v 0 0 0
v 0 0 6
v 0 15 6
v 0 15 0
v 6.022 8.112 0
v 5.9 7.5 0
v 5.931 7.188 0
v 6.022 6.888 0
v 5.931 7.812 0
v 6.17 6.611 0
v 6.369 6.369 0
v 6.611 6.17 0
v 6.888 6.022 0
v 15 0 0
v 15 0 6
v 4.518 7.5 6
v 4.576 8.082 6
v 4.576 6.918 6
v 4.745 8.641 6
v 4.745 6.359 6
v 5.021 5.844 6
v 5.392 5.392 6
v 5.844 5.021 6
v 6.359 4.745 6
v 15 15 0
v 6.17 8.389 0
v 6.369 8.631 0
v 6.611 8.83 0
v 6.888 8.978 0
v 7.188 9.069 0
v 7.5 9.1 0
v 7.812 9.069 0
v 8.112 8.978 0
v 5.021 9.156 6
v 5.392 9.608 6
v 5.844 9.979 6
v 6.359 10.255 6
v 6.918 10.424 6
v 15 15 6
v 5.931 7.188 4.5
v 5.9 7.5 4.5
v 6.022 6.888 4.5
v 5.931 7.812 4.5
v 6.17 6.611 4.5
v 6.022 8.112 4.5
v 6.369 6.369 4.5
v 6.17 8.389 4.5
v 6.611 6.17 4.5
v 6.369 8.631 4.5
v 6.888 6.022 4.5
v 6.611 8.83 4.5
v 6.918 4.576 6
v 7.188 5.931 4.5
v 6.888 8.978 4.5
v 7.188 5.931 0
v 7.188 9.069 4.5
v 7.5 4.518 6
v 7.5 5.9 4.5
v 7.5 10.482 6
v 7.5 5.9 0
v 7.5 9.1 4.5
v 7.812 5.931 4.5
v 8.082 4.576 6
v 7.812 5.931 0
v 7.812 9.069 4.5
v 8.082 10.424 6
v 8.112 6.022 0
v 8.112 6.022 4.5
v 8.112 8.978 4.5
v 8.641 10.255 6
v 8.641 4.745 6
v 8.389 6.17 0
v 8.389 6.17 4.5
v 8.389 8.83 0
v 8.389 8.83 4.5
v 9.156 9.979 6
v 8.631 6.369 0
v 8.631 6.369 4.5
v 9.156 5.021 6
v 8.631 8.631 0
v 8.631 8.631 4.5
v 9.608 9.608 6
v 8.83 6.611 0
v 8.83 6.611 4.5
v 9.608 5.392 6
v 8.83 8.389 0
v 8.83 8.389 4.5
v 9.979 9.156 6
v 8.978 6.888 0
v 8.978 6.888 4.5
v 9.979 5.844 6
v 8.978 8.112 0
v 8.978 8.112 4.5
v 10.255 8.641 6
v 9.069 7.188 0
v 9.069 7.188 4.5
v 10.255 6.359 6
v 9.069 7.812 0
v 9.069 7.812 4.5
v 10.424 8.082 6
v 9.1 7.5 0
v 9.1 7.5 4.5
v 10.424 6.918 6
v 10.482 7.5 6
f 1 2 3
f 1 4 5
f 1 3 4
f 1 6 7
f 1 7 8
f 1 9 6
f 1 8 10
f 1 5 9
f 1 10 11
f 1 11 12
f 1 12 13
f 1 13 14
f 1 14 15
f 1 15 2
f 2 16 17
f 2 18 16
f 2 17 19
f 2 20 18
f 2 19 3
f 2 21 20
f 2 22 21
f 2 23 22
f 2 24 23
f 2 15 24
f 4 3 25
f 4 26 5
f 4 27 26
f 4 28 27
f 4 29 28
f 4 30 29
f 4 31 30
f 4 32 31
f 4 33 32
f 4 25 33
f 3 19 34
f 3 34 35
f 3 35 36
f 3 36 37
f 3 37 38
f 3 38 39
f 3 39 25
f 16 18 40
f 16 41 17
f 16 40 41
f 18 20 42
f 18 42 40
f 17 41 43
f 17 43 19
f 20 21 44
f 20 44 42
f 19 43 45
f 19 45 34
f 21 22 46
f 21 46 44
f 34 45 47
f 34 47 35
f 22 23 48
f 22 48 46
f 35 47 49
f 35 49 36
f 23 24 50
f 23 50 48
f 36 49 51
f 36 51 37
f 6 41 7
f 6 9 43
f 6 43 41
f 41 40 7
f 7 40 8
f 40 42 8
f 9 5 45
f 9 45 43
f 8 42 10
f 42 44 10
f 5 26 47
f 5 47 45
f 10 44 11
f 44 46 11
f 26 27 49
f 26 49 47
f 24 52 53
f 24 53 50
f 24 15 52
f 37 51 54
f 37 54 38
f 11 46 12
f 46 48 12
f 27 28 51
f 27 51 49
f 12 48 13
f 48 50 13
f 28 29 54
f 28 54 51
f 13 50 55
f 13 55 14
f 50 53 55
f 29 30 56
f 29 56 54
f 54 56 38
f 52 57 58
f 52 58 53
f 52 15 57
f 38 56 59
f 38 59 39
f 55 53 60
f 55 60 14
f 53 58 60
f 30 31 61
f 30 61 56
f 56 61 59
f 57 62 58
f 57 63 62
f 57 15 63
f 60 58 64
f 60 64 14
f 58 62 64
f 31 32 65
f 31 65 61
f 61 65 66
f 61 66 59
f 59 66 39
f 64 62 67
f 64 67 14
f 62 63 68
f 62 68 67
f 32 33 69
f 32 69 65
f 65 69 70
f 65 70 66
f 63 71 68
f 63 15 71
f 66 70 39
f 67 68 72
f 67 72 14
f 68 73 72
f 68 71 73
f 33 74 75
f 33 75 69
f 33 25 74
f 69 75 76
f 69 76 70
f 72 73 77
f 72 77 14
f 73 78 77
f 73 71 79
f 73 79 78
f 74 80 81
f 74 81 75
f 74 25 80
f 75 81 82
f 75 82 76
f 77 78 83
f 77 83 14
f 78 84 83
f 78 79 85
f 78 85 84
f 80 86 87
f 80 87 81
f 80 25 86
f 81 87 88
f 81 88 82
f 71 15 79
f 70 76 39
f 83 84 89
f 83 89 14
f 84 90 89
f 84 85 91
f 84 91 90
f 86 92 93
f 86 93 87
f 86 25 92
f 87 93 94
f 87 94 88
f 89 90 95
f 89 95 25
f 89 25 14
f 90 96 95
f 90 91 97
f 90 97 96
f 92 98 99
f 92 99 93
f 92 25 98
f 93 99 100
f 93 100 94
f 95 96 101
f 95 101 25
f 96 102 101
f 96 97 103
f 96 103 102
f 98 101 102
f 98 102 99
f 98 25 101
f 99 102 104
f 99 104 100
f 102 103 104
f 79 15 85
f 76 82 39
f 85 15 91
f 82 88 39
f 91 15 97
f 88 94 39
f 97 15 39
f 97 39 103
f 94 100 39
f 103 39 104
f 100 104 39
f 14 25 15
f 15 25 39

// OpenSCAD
extrusion_size = 15;
m3_hole_radius = 3.2 / 2;
m3_countersink_diameter = 6;
m3_countersink_depth = 1.5;

hammer_head_height = 6;

module hammer_head() {
    difference() {
        cube([extrusion_size, extrusion_size, hammer_head_height]);
        // M3 hole
        translate([extrusion_size / 2, extrusion_size / 2, -0.01]) {
            cylinder(h = hammer_head_height + 0.02, r = m3_hole_radius, $fn = 32);
        }
        // Countersink
        translate([extrusion_size / 2, extrusion_size / 2, hammer_head_height - m3_countersink_depth]) {
            cylinder(h = m3_countersink_depth + 0.02, r1 = m3_hole_radius, r2 = m3_countersink_diameter / 2, $fn = 32);
        }
    }
}

// Placed hammer head (color + translate) for use from thruster.scad
module hammer_head_placed(tx, ty, tz, top_edge_y, extrusion_size_val, head_color) {
    color(head_color) {
        translate([
            tx - top_edge_y / 2 - extrusion_size_val / 2,
            ty,
            tz
        ]) {
            hammer_head();
        }
    }
}

hammer_head();
